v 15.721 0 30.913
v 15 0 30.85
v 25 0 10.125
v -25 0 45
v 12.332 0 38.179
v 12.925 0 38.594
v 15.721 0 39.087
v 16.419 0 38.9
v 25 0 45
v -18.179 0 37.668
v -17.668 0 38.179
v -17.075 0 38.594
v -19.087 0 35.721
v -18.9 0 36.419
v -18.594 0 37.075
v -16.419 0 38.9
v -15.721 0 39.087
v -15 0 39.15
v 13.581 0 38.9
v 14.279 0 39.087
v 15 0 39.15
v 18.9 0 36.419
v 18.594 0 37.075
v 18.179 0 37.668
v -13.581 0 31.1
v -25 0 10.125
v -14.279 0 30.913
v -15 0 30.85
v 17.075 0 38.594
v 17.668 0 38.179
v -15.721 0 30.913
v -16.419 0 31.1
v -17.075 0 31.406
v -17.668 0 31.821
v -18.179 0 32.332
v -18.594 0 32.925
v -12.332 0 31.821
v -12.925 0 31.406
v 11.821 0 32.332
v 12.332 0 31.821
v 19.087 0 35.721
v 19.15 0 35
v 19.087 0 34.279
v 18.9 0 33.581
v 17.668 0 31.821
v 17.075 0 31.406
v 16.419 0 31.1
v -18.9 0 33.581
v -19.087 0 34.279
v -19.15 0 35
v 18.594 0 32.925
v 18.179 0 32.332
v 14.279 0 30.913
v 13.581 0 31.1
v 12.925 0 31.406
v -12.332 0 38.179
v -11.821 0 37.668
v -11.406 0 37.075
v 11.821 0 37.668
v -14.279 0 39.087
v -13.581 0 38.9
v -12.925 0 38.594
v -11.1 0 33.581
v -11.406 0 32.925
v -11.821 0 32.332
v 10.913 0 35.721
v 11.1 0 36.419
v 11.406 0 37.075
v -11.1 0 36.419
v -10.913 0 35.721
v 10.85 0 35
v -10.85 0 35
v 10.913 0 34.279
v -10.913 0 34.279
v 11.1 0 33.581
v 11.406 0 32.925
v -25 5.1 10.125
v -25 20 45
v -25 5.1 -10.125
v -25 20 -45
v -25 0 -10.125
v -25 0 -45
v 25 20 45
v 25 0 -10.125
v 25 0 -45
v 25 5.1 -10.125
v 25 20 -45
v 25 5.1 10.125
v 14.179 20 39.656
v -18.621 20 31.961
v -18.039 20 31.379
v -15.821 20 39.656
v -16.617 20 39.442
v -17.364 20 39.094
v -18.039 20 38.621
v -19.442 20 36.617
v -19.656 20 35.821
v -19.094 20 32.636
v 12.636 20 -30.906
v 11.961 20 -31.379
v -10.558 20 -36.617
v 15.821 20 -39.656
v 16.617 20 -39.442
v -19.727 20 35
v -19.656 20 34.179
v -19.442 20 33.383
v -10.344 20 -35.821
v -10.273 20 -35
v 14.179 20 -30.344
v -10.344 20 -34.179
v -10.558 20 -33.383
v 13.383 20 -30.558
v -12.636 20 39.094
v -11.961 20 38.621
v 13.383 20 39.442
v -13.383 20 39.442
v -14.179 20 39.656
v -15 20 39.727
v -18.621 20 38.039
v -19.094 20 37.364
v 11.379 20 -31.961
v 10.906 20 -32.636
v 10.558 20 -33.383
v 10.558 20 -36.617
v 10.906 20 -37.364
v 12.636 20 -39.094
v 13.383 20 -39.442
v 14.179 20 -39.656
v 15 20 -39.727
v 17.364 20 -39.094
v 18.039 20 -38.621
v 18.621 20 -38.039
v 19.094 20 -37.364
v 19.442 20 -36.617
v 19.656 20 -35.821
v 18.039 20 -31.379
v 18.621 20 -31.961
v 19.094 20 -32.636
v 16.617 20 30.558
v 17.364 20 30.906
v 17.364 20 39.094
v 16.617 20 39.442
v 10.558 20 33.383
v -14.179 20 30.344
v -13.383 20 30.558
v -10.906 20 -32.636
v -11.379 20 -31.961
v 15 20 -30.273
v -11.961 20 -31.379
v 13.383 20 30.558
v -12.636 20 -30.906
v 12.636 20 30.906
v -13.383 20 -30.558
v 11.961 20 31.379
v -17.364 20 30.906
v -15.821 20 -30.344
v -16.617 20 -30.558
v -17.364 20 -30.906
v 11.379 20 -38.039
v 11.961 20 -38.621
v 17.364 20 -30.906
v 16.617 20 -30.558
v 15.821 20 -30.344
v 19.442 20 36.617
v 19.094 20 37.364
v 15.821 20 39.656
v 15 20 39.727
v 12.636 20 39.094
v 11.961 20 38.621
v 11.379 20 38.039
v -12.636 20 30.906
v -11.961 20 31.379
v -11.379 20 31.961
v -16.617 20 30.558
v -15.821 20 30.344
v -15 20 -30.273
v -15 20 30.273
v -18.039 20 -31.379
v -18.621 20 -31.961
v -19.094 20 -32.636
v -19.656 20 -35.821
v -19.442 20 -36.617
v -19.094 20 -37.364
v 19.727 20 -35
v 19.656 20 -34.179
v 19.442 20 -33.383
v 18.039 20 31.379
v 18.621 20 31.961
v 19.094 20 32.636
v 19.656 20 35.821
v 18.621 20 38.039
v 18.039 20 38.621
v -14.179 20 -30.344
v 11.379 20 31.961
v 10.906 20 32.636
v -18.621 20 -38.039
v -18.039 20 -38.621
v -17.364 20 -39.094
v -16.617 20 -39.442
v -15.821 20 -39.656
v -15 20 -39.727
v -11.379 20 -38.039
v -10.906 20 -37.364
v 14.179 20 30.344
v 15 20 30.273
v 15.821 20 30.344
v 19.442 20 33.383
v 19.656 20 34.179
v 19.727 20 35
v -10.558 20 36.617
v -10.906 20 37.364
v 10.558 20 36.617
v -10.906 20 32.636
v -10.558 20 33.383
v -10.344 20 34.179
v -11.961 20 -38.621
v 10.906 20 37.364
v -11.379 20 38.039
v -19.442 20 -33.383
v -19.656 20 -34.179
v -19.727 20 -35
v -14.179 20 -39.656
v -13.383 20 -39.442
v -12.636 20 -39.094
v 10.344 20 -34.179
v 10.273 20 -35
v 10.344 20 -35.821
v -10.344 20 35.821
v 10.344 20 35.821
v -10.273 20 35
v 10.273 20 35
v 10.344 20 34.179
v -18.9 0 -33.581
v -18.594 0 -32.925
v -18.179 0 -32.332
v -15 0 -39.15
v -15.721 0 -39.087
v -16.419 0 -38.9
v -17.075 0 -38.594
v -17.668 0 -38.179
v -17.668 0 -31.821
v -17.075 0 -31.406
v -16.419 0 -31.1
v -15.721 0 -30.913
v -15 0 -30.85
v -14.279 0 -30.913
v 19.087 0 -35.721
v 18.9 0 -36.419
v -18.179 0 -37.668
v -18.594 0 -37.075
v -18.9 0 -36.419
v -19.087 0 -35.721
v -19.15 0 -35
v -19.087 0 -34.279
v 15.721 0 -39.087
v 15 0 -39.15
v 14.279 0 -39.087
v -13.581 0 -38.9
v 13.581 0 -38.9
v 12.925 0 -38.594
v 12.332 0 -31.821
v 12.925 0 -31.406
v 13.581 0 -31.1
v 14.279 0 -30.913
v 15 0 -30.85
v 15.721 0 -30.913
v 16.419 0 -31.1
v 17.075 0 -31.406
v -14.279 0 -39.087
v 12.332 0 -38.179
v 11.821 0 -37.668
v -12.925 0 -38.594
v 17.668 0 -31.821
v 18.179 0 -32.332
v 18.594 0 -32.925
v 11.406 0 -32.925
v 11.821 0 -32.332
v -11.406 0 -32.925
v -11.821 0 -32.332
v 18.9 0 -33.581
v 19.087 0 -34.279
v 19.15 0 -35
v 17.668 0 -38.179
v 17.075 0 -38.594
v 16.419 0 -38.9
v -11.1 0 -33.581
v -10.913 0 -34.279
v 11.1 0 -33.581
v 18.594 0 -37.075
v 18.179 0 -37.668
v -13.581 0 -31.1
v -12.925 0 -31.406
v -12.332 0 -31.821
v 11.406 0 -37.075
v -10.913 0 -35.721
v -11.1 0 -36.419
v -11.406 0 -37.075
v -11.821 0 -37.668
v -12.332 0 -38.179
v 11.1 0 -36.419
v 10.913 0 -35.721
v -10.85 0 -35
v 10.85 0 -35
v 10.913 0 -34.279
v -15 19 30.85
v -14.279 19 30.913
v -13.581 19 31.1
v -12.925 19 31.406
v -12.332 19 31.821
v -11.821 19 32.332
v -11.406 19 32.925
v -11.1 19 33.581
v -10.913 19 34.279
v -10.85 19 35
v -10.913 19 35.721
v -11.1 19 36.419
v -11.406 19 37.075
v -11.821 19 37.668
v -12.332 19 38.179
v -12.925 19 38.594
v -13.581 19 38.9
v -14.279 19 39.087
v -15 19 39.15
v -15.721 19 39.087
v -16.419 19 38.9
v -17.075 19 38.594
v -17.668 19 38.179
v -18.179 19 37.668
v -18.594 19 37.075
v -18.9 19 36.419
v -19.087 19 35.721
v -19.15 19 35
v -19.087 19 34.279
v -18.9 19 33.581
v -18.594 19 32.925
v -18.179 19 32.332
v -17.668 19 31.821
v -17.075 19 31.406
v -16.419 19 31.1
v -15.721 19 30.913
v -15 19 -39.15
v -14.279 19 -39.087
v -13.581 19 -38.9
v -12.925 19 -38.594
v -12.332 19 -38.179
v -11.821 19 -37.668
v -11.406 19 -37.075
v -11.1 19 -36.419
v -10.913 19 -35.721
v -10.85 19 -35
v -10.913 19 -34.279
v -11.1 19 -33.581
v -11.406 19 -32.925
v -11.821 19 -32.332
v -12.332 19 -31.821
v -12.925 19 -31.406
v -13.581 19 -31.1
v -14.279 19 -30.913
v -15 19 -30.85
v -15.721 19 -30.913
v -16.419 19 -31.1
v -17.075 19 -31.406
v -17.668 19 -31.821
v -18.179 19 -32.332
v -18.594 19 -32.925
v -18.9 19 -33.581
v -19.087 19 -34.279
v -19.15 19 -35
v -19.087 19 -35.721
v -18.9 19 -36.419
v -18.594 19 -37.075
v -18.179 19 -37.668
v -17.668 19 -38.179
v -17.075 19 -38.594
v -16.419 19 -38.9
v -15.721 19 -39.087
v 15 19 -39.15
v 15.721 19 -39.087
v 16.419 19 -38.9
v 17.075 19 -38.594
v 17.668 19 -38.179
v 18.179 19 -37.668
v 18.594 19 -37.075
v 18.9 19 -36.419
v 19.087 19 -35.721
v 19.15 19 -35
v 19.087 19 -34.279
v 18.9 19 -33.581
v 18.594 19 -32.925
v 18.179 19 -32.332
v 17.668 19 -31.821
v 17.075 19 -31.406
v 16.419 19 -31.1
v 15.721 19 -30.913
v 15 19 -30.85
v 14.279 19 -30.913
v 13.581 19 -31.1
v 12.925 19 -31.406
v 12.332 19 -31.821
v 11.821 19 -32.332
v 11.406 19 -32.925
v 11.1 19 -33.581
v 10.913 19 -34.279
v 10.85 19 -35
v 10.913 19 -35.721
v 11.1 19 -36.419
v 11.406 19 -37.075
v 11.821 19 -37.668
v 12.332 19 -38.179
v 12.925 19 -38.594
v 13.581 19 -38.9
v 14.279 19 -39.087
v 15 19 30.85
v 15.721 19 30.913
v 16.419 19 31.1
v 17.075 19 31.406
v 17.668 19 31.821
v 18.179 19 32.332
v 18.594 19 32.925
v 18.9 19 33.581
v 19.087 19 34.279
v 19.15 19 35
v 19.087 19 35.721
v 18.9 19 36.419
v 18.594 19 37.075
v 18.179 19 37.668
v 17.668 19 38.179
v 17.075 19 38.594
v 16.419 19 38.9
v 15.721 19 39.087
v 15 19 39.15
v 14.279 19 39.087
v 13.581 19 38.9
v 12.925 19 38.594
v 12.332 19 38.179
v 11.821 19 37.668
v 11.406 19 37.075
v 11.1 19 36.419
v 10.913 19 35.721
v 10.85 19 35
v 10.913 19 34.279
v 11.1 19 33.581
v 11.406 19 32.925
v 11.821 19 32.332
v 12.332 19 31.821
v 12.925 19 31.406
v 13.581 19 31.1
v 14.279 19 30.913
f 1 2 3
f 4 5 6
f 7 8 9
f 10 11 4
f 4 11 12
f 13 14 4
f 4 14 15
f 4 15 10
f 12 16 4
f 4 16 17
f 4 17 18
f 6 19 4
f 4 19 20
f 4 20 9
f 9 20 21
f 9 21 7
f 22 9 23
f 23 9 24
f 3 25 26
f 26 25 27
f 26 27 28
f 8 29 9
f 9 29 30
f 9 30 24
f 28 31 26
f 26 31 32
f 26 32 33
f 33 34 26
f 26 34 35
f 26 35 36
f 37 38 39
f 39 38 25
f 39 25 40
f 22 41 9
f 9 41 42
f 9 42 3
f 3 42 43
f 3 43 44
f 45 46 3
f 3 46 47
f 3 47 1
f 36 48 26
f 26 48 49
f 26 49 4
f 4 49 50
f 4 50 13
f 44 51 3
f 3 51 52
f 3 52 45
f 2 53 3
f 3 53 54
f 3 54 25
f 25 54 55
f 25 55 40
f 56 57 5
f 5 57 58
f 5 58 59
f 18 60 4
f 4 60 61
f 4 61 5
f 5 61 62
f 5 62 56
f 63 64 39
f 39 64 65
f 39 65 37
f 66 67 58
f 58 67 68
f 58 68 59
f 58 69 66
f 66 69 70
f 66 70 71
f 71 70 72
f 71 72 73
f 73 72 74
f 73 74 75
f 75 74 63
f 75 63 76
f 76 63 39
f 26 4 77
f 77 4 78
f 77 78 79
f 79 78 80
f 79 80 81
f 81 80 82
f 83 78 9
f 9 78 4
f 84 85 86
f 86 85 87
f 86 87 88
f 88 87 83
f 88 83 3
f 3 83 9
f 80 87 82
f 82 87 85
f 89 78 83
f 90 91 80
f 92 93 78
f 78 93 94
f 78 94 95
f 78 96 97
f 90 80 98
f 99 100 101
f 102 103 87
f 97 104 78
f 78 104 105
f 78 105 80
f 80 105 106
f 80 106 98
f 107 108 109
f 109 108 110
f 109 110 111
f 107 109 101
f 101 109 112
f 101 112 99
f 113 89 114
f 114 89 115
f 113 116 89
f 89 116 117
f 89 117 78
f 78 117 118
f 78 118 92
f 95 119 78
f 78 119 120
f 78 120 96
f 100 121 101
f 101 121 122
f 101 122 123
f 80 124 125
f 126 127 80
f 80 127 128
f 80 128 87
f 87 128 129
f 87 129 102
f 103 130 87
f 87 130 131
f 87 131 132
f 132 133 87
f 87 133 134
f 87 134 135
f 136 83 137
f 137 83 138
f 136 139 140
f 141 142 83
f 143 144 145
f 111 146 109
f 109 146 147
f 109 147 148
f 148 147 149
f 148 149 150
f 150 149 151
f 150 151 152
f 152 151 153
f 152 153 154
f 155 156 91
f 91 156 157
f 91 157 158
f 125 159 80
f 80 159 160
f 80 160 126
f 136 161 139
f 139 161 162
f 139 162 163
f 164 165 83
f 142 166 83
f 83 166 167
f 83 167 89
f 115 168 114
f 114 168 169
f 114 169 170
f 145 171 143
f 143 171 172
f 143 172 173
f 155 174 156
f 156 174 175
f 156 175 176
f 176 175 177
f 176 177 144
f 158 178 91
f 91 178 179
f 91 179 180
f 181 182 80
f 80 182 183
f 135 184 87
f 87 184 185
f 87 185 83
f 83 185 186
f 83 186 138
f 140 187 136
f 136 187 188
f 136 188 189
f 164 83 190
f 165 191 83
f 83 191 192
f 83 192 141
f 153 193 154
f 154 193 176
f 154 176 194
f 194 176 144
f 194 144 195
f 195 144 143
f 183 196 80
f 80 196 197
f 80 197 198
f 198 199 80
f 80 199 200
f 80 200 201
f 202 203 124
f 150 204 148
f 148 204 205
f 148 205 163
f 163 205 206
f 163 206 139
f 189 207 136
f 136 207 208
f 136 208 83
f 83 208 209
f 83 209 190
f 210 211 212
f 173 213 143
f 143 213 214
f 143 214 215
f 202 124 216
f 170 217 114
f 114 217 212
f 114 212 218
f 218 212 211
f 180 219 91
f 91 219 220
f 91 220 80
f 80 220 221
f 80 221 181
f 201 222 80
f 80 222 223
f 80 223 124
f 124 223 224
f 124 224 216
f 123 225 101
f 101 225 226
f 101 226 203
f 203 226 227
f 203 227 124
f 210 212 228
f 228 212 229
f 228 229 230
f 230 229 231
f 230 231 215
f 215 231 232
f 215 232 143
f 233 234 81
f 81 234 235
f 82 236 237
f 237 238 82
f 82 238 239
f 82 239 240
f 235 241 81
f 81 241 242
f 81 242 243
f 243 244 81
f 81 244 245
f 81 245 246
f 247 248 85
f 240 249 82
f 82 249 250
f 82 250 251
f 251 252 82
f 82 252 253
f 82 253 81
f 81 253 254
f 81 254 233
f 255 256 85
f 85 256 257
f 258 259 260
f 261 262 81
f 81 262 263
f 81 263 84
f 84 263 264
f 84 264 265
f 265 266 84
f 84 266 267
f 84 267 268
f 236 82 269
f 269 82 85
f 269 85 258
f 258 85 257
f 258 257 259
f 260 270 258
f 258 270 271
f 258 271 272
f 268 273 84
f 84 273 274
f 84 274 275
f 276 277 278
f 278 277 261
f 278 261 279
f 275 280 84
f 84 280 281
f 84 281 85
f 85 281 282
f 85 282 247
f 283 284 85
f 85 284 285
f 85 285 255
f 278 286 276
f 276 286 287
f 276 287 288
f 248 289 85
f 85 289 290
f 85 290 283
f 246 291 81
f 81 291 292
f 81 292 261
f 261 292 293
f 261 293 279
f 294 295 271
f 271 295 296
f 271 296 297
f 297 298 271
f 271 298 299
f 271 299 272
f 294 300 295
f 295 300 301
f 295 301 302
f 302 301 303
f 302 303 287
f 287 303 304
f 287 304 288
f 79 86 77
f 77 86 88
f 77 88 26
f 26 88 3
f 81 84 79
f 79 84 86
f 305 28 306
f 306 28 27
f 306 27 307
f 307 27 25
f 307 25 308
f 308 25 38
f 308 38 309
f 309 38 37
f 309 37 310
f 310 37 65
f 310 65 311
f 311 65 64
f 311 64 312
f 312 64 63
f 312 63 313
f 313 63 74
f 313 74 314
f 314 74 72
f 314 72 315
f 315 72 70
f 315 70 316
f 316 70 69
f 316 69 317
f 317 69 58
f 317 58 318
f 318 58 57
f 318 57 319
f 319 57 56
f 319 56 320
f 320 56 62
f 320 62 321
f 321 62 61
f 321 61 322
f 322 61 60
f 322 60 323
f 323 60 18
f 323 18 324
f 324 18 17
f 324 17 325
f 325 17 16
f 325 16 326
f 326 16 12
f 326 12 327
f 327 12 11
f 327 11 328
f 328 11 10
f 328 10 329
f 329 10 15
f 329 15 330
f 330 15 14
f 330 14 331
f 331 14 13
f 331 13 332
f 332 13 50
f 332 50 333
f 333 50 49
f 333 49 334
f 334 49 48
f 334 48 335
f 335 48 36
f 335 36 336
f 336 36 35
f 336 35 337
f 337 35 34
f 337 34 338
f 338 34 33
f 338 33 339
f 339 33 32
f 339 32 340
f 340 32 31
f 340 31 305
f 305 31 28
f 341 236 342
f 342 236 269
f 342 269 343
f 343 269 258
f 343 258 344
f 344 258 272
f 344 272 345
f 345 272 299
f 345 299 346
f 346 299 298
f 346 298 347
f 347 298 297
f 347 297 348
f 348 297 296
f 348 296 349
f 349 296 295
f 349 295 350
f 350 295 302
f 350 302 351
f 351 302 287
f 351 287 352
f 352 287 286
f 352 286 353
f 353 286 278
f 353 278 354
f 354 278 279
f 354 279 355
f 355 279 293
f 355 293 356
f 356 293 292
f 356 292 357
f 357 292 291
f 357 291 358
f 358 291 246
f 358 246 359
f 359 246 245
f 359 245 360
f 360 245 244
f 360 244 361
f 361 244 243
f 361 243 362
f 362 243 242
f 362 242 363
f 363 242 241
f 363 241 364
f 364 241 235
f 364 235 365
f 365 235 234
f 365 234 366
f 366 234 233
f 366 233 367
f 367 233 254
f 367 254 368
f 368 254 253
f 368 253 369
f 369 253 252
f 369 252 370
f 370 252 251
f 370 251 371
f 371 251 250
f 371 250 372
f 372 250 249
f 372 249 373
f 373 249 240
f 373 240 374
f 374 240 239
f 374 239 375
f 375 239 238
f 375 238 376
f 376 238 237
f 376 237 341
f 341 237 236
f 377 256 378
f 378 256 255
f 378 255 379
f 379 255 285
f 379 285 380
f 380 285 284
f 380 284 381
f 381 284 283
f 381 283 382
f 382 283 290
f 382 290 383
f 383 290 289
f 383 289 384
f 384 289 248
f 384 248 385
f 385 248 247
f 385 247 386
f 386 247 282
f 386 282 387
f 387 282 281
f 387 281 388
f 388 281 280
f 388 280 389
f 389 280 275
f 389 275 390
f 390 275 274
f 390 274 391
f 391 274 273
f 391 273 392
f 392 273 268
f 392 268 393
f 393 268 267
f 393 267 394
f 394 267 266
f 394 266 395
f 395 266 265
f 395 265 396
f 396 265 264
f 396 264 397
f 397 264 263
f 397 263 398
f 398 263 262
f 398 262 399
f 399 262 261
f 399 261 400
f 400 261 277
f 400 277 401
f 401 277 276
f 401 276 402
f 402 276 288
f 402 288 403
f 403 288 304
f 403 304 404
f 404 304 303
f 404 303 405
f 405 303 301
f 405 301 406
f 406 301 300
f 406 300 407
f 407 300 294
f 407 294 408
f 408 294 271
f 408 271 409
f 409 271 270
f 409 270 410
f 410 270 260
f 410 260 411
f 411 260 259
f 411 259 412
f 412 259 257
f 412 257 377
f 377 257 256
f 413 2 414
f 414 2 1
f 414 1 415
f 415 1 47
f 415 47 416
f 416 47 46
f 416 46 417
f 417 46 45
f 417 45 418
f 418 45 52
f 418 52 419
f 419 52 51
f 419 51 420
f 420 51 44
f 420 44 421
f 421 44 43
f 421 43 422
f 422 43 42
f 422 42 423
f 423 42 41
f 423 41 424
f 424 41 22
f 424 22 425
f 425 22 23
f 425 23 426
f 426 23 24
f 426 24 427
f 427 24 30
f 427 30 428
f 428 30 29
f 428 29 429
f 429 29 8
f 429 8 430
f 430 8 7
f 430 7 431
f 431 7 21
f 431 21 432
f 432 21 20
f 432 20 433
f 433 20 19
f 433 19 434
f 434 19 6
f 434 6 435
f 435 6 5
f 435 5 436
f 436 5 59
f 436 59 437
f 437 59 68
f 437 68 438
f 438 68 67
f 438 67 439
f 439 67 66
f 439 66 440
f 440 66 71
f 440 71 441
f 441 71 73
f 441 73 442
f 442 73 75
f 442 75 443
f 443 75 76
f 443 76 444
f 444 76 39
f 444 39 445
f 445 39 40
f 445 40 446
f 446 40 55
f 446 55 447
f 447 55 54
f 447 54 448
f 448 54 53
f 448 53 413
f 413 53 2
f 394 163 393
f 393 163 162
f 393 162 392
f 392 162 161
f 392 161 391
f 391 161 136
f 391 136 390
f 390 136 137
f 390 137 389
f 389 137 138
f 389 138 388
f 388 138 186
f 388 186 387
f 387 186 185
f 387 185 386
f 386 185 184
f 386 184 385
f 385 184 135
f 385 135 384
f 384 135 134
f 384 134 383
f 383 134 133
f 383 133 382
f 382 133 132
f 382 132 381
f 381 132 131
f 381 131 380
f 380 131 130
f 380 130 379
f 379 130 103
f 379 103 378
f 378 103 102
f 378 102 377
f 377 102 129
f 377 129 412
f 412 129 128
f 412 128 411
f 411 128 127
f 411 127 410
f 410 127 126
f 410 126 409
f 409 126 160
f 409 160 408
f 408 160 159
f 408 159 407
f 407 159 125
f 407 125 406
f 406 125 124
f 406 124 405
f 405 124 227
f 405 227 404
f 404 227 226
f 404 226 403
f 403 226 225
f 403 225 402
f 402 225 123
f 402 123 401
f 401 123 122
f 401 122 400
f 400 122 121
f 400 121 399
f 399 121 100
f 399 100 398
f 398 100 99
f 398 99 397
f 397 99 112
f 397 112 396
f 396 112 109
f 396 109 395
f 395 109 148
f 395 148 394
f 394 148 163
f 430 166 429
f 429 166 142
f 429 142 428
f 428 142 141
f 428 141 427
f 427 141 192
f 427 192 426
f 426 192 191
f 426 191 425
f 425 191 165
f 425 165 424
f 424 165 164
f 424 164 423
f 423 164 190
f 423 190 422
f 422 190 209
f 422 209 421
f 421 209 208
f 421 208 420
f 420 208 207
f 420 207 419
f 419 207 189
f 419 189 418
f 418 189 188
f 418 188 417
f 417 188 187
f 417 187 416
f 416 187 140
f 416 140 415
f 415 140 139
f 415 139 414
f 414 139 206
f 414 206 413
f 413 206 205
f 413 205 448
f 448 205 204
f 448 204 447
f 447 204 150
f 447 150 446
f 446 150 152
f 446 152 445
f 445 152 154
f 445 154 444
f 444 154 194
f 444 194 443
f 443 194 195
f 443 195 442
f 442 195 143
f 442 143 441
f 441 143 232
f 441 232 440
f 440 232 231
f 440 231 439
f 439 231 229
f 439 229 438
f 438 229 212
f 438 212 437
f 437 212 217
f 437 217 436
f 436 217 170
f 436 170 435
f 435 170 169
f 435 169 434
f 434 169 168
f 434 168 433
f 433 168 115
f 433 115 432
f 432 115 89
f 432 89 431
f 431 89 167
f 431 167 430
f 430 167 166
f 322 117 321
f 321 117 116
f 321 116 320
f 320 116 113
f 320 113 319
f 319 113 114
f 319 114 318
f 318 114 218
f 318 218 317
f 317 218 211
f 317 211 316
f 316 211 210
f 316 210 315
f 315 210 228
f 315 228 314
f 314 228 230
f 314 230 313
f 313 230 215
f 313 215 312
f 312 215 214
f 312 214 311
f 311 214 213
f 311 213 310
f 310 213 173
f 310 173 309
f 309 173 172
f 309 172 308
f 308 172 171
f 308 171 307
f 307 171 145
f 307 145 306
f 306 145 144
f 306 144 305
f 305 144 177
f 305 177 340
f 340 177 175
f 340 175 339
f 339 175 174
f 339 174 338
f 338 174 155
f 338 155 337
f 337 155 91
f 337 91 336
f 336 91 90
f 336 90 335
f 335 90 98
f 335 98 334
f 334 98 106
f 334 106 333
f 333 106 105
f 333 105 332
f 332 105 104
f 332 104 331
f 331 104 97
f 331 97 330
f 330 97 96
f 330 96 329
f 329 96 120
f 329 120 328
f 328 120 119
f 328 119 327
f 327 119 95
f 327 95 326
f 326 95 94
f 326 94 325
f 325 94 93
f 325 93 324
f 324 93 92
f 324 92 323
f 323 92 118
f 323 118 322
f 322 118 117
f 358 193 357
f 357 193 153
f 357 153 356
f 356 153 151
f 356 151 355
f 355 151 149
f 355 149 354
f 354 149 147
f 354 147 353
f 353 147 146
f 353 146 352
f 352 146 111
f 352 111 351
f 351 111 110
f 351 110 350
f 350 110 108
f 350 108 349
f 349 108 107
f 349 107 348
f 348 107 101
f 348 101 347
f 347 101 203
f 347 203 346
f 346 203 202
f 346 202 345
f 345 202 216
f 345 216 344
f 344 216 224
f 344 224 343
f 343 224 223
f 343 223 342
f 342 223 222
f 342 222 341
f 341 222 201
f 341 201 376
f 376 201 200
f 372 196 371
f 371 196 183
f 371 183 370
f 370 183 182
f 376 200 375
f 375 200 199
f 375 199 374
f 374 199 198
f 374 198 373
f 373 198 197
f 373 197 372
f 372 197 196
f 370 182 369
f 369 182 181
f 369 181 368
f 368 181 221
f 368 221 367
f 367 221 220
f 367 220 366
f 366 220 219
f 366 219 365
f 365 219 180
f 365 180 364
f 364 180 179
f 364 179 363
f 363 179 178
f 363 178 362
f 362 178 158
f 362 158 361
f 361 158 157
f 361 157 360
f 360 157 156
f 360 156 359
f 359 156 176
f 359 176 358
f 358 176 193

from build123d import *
from OCP.BRepFilletAPI import BRepFilletAPI_MakeChamfer

# Parameters (mm, degrees)
SKETCH1_W               = 50
SKETCH1_H               = 90
BOSS_EXTRUDE1_DEPTH     = 20
CUT_EXTRUDE1_DEPTH      = 71.178344238
CUT_EXTRUDE1_DEPTH_BACK = 71.178344238
SKETCH2_W               = 20.25
SKETCH2_H               = 5.1
SKETCH3_R               = 4.15
CUT_EXTRUDE2_DEPTH      = 56.226805086
CHAMFER1_SIZE           = 1
CHAMFER1_SIZE2          = 0.577350269


with BuildPart() as part:
    # Sketch1 → Boss-Extrude1 (new body)
    with BuildSketch(Plane(origin=(0, 0, 0), x_dir=(1, 0, 0), z_dir=(0, 1, 0))):
        Rectangle(SKETCH1_W, SKETCH1_H)
    extrude(amount=BOSS_EXTRUDE1_DEPTH)

    # Sketch2 → Cut-Extrude1 (cut, two sides: drawn at the far end of the back side and taken through both)
    with BuildSketch(Plane(origin=(25, 0, 0), x_dir=(0, 0, -1), z_dir=(1, 0, 0)).offset(-CUT_EXTRUDE1_DEPTH_BACK)):
        with Locations((0, 2.55)):
            Rectangle(SKETCH2_W, SKETCH2_H)
    extrude(amount=CUT_EXTRUDE1_DEPTH + CUT_EXTRUDE1_DEPTH_BACK, mode=Mode.SUBTRACT)

    # Sketch3 → Cut-Extrude2 (cut, through all)
    with BuildSketch(Plane.XZ):
        with Locations(Location((-15, 35, 0), (0, 0, 270))):
            Circle(SKETCH3_R)
        with Locations(Location((-15, -35, 0), (0, 0, 270))):
            Circle(SKETCH3_R)
        with Locations(Location((15, 35, 0), (0, 0, 270))):
            Circle(SKETCH3_R)
        with Locations(Location((15, -35, 0), (0, 0, 270))):
            Circle(SKETCH3_R)
    extrude(amount=-CUT_EXTRUDE2_DEPTH, mode=Mode.SUBTRACT)

    # Chamfer1: one chamfer whose edges measure the first distance from different faces: ONE call of the kernel's chamfer builder (chamfer() names one face for all edges)
    chamfer1_edges_1 = [part.edges().sort_by_distance(p)[0] for p in [
        (-15, 20, 39.15),
    ]]
    chamfer1_side_1 = [part.faces().sort_by_distance(p)[0] for p in [
        (-15, 10, 39.15),
    ]]
    chamfer1_edges_2 = [part.edges().sort_by_distance(p)[0] for p in [
        (15, 20, 39.15),
    ]]
    chamfer1_side_2 = [part.faces().sort_by_distance(p)[0] for p in [
        (15, 10, 39.15),
    ]]
    chamfer1_edges_3 = [part.edges().sort_by_distance(p)[0] for p in [
        (15, 20, -30.85),
    ]]
    chamfer1_side_3 = [part.faces().sort_by_distance(p)[0] for p in [
        (15, 10, -30.85),
    ]]
    chamfer1_edges_4 = [part.edges().sort_by_distance(p)[0] for p in [
        (-15, 20, -30.85),
    ]]
    chamfer1_side_4 = [part.faces().sort_by_distance(p)[0] for p in [
        (-15, 10, -30.85),
    ]]
    chamfer1 = BRepFilletAPI_MakeChamfer(part.part.solid().wrapped)
    for e in chamfer1_edges_1:
        chamfer1.Add(CHAMFER1_SIZE, CHAMFER1_SIZE2, e.wrapped, chamfer1_side_1[0].wrapped)  # the first distance lies on this face
    for e in chamfer1_edges_2:
        chamfer1.Add(CHAMFER1_SIZE, CHAMFER1_SIZE2, e.wrapped, chamfer1_side_2[0].wrapped)  # the first distance lies on this face
    for e in chamfer1_edges_3:
        chamfer1.Add(CHAMFER1_SIZE, CHAMFER1_SIZE2, e.wrapped, chamfer1_side_3[0].wrapped)  # the first distance lies on this face
    for e in chamfer1_edges_4:
        chamfer1.Add(CHAMFER1_SIZE, CHAMFER1_SIZE2, e.wrapped, chamfer1_side_4[0].wrapped)  # the first distance lies on this face
    add(Compound.cast(chamfer1.Shape()), mode=Mode.REPLACE)


solid = part.part
